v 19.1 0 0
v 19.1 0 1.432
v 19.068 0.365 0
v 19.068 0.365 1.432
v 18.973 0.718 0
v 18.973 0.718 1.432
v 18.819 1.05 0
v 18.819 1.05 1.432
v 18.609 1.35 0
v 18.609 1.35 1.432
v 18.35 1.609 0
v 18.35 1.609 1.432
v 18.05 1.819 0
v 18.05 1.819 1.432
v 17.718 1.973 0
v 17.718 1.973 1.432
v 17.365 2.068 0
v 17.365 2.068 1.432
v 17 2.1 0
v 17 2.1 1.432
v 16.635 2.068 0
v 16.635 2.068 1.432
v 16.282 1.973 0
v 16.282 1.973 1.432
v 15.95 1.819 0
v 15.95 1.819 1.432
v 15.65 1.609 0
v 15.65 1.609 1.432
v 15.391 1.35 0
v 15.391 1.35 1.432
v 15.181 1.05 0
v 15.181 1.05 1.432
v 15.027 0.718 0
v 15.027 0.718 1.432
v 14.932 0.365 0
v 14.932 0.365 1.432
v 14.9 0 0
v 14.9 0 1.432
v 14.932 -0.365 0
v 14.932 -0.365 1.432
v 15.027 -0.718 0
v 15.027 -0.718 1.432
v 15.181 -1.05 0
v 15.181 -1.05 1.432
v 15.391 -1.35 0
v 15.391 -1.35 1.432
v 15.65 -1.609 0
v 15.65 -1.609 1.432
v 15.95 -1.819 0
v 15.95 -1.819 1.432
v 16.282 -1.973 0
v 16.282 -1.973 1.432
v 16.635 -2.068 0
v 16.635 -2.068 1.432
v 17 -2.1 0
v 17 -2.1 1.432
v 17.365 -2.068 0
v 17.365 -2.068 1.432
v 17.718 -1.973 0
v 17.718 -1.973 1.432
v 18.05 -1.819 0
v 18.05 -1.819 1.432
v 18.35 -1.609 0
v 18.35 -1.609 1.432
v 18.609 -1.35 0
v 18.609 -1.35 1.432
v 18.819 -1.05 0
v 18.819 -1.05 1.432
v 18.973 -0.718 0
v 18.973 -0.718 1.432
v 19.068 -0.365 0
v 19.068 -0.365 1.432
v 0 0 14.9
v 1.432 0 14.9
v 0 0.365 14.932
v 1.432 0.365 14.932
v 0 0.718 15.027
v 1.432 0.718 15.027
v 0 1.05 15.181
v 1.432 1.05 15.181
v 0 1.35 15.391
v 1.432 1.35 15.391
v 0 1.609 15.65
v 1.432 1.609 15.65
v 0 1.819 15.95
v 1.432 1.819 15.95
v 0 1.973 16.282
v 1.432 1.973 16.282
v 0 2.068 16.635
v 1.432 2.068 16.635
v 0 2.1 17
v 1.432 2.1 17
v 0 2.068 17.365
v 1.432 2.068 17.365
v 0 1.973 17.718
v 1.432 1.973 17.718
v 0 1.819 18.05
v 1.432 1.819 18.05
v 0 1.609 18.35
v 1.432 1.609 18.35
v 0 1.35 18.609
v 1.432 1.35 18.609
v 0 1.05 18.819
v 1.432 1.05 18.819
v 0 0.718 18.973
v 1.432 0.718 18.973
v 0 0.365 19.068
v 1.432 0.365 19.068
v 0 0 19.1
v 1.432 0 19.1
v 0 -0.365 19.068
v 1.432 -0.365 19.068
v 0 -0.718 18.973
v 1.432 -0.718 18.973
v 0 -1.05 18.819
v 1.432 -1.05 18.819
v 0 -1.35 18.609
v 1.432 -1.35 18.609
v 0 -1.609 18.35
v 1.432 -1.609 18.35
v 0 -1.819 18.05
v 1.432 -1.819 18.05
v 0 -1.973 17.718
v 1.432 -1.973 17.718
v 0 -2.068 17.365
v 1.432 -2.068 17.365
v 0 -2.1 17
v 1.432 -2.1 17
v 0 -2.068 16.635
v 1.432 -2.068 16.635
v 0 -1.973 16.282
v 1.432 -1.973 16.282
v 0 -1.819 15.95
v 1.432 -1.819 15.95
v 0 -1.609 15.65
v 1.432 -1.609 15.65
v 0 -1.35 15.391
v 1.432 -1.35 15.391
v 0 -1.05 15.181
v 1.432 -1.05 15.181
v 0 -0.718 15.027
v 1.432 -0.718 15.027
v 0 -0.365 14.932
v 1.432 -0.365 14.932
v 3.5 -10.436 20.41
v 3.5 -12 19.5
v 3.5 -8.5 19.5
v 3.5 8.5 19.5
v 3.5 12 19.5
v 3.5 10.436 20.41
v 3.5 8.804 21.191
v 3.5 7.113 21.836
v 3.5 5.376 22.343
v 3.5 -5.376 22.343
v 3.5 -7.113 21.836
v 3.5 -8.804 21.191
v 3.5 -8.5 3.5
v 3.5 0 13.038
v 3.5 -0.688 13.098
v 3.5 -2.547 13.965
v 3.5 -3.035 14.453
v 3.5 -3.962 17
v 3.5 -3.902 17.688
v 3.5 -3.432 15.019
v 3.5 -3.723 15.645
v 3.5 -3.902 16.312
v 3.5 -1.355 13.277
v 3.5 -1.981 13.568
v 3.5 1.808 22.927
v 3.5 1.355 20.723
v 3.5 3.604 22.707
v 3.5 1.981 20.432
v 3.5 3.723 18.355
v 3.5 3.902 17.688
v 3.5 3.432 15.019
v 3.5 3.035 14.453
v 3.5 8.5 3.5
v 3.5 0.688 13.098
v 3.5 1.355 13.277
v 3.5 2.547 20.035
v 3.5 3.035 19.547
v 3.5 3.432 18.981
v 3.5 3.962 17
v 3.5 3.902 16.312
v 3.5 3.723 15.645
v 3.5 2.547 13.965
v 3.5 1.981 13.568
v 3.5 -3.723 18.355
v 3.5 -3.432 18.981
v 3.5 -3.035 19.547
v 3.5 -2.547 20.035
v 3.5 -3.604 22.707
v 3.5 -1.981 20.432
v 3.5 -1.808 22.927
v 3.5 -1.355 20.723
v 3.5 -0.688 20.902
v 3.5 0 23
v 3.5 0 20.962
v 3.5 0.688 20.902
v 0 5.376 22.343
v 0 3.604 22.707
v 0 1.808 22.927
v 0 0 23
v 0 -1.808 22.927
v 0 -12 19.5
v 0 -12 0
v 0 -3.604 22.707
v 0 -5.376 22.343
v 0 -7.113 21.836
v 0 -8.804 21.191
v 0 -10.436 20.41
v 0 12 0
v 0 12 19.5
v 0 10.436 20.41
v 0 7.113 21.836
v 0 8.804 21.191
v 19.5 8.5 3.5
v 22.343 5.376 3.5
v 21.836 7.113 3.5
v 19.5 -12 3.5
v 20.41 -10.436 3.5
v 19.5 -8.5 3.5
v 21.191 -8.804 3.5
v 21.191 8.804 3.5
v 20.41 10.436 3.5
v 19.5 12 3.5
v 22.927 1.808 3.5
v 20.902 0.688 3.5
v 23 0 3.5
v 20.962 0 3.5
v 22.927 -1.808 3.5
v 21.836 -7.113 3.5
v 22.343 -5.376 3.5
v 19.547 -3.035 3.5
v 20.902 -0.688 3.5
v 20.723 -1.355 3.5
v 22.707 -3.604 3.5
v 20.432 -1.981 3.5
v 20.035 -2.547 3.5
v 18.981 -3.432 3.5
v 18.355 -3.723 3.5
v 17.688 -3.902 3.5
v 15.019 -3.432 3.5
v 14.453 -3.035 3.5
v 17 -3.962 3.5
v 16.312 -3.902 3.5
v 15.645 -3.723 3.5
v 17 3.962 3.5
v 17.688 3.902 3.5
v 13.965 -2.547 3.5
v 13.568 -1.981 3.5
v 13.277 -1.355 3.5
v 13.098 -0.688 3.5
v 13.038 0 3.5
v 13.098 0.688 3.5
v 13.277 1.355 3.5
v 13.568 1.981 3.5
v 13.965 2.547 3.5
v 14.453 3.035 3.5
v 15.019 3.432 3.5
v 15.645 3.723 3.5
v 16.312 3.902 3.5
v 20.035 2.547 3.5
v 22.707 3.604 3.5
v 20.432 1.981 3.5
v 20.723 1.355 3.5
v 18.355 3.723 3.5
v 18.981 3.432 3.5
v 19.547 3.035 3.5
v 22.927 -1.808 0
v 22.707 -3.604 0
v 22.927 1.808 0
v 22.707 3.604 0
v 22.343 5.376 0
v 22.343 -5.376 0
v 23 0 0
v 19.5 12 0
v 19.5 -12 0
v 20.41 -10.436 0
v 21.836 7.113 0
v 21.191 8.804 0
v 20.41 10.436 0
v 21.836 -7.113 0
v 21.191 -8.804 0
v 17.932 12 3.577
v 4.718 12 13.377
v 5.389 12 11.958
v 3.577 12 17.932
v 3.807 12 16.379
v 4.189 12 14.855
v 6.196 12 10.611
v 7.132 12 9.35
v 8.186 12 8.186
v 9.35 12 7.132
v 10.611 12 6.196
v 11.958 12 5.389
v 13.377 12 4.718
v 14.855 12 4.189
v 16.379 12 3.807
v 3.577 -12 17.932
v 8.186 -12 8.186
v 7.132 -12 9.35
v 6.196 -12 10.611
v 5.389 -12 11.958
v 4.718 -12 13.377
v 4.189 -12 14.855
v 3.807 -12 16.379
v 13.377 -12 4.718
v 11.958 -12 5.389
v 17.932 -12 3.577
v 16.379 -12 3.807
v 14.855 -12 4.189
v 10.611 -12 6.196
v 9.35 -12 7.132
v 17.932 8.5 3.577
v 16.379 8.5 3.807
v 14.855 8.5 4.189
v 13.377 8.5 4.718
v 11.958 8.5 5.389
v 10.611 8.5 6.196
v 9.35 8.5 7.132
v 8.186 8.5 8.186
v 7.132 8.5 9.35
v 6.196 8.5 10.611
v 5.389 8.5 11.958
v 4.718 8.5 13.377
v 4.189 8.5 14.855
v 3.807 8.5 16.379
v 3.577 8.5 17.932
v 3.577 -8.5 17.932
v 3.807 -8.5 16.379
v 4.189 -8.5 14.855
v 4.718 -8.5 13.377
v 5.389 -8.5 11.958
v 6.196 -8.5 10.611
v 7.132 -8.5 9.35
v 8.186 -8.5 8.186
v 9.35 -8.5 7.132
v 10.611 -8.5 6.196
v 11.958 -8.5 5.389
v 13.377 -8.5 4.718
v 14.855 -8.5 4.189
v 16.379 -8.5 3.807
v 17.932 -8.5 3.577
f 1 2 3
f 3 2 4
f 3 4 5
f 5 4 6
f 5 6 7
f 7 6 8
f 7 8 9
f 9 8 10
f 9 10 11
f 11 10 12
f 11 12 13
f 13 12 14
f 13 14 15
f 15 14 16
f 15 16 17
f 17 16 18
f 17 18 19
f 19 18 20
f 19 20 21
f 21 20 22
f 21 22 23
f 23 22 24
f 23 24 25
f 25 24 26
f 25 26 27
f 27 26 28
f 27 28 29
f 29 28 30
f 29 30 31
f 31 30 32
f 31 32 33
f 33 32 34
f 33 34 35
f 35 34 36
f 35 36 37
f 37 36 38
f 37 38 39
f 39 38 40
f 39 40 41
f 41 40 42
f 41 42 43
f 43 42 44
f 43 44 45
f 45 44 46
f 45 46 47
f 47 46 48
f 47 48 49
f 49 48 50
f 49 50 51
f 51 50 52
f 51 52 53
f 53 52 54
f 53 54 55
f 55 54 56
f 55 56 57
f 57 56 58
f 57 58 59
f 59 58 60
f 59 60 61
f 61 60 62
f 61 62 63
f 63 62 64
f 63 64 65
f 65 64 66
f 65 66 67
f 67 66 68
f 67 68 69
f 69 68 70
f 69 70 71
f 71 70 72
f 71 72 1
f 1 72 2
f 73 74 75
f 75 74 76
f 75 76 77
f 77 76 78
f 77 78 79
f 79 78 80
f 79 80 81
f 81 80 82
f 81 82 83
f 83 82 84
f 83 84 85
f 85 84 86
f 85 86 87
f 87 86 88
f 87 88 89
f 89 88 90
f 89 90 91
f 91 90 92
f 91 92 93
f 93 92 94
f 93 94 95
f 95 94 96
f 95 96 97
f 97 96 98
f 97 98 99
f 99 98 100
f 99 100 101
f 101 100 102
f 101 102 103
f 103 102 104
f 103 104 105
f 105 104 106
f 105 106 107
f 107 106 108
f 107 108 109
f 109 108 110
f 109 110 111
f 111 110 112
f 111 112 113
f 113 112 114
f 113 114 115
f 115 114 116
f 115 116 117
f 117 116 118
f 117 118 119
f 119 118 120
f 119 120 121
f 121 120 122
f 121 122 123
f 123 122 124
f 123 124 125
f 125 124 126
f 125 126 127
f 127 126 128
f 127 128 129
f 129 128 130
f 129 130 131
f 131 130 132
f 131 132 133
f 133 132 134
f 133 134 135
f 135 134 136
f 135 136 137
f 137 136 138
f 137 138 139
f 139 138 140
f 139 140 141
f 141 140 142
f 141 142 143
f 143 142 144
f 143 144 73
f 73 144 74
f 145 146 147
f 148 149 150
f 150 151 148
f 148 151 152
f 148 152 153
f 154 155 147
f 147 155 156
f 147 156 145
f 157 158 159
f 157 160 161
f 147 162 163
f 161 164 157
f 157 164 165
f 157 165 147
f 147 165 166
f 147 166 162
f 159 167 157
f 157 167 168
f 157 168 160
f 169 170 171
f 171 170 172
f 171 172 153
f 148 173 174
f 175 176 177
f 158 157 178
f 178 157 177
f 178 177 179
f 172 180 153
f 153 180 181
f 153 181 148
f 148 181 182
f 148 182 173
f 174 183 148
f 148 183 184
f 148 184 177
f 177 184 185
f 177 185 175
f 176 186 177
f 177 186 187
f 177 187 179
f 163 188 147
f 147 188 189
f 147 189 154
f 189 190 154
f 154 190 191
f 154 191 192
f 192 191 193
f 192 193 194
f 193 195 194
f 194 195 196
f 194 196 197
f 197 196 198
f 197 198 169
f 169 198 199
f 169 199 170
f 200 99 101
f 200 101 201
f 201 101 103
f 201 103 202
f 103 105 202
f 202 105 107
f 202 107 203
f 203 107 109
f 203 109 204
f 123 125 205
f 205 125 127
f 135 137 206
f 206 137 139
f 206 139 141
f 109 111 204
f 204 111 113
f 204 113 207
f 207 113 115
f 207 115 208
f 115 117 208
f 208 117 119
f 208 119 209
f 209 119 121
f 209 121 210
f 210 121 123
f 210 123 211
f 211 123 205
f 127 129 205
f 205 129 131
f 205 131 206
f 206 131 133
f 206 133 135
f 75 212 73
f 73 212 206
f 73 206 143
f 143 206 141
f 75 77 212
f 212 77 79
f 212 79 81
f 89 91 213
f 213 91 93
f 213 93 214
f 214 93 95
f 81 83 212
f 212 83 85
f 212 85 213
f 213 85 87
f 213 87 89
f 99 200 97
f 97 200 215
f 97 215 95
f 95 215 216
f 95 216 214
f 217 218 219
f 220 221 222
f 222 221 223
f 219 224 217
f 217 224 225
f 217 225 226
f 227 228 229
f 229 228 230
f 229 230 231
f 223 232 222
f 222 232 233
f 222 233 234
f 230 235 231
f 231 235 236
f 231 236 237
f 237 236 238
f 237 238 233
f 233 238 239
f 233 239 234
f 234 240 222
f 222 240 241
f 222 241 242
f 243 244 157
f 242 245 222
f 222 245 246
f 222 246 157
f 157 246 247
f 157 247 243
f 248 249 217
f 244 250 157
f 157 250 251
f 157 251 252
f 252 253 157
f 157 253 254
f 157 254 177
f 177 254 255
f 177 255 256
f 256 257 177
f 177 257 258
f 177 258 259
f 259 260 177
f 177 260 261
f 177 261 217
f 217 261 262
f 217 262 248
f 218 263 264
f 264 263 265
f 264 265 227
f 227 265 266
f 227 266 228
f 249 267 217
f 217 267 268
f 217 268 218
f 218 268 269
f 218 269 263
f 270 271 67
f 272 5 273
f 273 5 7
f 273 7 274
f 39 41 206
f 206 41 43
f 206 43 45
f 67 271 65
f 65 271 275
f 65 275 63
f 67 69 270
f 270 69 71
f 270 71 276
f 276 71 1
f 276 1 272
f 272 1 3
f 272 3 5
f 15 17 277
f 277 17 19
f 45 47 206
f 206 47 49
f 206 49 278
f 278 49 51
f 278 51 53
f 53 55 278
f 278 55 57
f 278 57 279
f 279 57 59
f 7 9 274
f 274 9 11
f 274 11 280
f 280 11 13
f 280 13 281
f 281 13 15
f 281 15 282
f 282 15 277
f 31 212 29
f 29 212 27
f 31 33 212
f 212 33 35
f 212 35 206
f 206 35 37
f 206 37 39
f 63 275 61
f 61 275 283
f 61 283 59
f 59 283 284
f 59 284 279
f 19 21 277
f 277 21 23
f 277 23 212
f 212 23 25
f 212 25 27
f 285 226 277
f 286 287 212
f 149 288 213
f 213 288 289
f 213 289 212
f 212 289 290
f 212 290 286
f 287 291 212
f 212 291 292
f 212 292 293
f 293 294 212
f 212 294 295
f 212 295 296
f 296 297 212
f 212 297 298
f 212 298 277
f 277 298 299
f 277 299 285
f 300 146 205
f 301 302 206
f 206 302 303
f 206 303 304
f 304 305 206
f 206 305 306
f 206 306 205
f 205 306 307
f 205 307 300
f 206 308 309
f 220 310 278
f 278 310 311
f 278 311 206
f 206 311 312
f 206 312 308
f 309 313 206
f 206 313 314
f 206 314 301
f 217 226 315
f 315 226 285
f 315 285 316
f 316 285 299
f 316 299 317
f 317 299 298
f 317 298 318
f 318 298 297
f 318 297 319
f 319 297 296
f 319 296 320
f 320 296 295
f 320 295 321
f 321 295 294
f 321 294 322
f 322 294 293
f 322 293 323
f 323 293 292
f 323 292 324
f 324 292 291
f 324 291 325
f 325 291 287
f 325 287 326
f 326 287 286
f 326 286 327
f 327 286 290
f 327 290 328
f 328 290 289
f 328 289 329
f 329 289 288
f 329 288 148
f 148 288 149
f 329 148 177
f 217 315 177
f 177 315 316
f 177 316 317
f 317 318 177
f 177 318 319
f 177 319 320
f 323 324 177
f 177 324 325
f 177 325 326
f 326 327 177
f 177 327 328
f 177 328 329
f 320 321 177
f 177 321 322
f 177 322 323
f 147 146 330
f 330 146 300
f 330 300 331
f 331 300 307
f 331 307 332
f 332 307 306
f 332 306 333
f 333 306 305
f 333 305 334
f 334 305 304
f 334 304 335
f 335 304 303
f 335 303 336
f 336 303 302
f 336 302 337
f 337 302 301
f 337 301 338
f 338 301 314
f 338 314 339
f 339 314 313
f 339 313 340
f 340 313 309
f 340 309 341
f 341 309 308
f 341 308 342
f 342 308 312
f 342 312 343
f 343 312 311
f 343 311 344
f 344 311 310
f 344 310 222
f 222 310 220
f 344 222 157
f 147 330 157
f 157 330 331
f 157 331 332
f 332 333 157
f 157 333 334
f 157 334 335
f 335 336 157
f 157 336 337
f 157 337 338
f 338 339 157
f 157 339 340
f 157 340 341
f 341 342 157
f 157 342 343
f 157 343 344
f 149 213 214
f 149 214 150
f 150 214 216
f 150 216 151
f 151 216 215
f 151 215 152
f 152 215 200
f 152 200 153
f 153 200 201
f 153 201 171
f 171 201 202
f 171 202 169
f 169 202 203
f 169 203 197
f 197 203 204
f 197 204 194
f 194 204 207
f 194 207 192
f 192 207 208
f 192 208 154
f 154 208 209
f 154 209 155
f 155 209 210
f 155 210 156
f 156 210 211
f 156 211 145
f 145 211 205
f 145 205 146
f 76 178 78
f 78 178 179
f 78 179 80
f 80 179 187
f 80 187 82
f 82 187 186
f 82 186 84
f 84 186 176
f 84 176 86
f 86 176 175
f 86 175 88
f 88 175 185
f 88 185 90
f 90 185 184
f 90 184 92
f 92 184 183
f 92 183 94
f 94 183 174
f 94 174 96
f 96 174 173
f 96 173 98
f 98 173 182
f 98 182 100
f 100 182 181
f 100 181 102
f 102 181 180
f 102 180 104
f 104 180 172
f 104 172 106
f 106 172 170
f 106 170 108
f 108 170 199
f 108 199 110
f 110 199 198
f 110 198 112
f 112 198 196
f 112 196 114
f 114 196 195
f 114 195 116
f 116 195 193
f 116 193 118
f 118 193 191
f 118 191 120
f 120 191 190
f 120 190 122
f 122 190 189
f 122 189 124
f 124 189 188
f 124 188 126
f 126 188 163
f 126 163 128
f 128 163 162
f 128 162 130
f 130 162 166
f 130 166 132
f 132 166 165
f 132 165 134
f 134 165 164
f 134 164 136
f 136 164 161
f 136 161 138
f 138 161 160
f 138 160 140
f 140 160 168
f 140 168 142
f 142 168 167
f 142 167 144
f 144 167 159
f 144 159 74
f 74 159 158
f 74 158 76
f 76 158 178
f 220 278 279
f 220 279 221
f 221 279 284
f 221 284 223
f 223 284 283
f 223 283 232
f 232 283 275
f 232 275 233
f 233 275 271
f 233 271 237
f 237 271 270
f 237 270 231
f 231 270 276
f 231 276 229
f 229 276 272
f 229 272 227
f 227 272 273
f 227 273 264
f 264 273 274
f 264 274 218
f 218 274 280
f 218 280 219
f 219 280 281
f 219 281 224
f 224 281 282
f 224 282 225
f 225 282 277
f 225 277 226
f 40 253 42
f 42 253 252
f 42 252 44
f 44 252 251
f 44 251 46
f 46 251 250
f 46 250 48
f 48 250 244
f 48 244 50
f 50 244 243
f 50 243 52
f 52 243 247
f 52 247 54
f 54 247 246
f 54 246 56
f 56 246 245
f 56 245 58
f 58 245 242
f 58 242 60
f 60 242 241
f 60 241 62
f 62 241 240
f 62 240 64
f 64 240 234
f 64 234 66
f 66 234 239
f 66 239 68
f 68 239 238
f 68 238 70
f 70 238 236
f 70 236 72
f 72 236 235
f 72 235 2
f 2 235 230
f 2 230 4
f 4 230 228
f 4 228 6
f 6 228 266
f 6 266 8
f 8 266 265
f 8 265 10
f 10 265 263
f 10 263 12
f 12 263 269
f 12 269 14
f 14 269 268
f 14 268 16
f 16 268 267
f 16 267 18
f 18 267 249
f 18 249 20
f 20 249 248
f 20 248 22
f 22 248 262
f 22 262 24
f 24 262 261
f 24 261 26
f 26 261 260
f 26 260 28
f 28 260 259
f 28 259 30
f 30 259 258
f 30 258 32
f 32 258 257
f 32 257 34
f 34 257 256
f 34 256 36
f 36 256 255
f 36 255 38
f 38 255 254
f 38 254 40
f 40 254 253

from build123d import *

# Parameters (mm, degrees)
BOSS_EXTRUDE1_DEPTH          = 12
BOSS_EXTRUDE1_DEPTH_BACK     = 12
BOSS_EXTRUDE2_DEPTH          = 3.5
CUT_EXTRUDE3_START           = -4.5
CUT_EXTRUDE3_DEPTH           = 25
CUT_EXTRUDE1_START           = -4.5
SKETCH5_R                    = 2.1
CUT_EXTRUDE1_DEPTH           = 25
SKETCH6_R                    = 3.9624
CUT_EXTRUDE2_DEPTH           = 3.5
CUT_EXTRUDE2_TAPER           = 42
CUT_EXTRUDE2_OTHER_WAY_DEPTH = 3.048
CUT_EXTRUDE2_OTHER_WAY_TAPER = 42
CIRPATTERN2_COUNT            = 2
CIRPATTERN2_ANGLE            = 180


with BuildPart() as part:
    # Sketch3 → Boss-Extrude1 (new body, two sides)
    with BuildSketch(Plane(origin=(0, 0, 0), x_dir=(1, 0, 0), z_dir=(0, 1, 0))) as boss_extrude1_sk:
        Polygon((0, -23), (3.5, -23), (3.5, -3.5), (23, -3.5), (23, 0), (0, 0), align=None)
    extrude(amount=BOSS_EXTRUDE1_DEPTH)
    extrude(boss_extrude1_sk.sketch, amount=-BOSS_EXTRUDE1_DEPTH_BACK)

    # Sketch8 → Boss-Extrude2 (add)
    with BuildSketch(Plane(origin=(0, 12, 0), x_dir=(1, 0, 0), z_dir=(0, 1, 0))):
        with BuildLine():
            Line((3.5, -3.5), (19.5, -3.5))
            ThreePointArc((19.5, -3.5), (8.186291501, -8.186291501), (3.5, -19.5))
            Line((3.5, -19.5), (3.5, -3.5))
        make_face()
    boss_extrude2 = extrude(amount=-BOSS_EXTRUDE2_DEPTH)

    # Mirror1: Boss-Extrude2 across plane
    add(boss_extrude2.mirror(Plane.ZX))

    # Sketch7 → Cut-Extrude3 (cut)
    with BuildSketch(Plane(origin=(3.5, 0, 0), x_dir=(0, 0, -1), z_dir=(1, 0, 0)).offset(CUT_EXTRUDE3_START)):
        with BuildLine():
            Line((19.124723765, 72.581039953), (-19.5, 12))
            ThreePointArc((-19.5, 12), (-23, 0), (-19.5, -12))
            Line((-19.5, -12), (19.124723765, -72.581039953))
            Line((19.124723765, -72.581039953), (-124.568445004, -72.581039953))
            Line((-124.568445004, -72.581039953), (-124.568445004, 72.581039953))
            Line((-124.568445004, 72.581039953), (19.124723765, 72.581039953))
        make_face()
    cut_extrude3 = extrude(amount=CUT_EXTRUDE3_DEPTH, mode=Mode.SUBTRACT)

    # Sketch5 → Cut-Extrude1 (cut)
    with BuildSketch(Plane(origin=(3.5, 0, 0), x_dir=(0, 0, -1), z_dir=(1, 0, 0)).offset(CUT_EXTRUDE1_START)):
        with Locations((-17, 0)):
            Circle(SKETCH5_R)
    cut_extrude1 = extrude(amount=CUT_EXTRUDE1_DEPTH, mode=Mode.SUBTRACT)

    # Sketch6 → Cut-Extrude2 (cut)
    with BuildSketch(Plane(origin=(3.5, 0, 0), x_dir=(0, 0, -1), z_dir=(1, 0, 0))):
        with Locations((-17, 0)):
            Circle(SKETCH6_R)
    cut_extrude2 = extrude(amount=-CUT_EXTRUDE2_DEPTH, taper=CUT_EXTRUDE2_TAPER, mode=Mode.SUBTRACT)

    # Sketch6 → Cut-Extrude2 other way (cut)
    with BuildSketch(Plane(origin=(3.5, 0, 0), x_dir=(0, 0, -1), z_dir=(1, 0, 0))):
        with Locations((-17, 0)):
            Circle(SKETCH6_R)
    extrude(amount=CUT_EXTRUDE2_OTHER_WAY_DEPTH, taper=CUT_EXTRUDE2_OTHER_WAY_TAPER, mode=Mode.SUBTRACT)

    # CirPattern2: Cut-Extrude3, Cut-Extrude1, Cut-Extrude2 ×2 about axis
    cirpattern2_axis = Axis((0, 0, 0), (0.707106781, 0, 0.707106781))
    for i in range(1, CIRPATTERN2_COUNT):
        add(cut_extrude3.rotate(cirpattern2_axis, i * CIRPATTERN2_ANGLE / (CIRPATTERN2_COUNT - 1)), mode=Mode.SUBTRACT)
        add(cut_extrude1.rotate(cirpattern2_axis, i * CIRPATTERN2_ANGLE / (CIRPATTERN2_COUNT - 1)), mode=Mode.SUBTRACT)
        add(cut_extrude2.rotate(cirpattern2_axis, i * CIRPATTERN2_ANGLE / (CIRPATTERN2_COUNT - 1)), mode=Mode.SUBTRACT)


solid = part.part
